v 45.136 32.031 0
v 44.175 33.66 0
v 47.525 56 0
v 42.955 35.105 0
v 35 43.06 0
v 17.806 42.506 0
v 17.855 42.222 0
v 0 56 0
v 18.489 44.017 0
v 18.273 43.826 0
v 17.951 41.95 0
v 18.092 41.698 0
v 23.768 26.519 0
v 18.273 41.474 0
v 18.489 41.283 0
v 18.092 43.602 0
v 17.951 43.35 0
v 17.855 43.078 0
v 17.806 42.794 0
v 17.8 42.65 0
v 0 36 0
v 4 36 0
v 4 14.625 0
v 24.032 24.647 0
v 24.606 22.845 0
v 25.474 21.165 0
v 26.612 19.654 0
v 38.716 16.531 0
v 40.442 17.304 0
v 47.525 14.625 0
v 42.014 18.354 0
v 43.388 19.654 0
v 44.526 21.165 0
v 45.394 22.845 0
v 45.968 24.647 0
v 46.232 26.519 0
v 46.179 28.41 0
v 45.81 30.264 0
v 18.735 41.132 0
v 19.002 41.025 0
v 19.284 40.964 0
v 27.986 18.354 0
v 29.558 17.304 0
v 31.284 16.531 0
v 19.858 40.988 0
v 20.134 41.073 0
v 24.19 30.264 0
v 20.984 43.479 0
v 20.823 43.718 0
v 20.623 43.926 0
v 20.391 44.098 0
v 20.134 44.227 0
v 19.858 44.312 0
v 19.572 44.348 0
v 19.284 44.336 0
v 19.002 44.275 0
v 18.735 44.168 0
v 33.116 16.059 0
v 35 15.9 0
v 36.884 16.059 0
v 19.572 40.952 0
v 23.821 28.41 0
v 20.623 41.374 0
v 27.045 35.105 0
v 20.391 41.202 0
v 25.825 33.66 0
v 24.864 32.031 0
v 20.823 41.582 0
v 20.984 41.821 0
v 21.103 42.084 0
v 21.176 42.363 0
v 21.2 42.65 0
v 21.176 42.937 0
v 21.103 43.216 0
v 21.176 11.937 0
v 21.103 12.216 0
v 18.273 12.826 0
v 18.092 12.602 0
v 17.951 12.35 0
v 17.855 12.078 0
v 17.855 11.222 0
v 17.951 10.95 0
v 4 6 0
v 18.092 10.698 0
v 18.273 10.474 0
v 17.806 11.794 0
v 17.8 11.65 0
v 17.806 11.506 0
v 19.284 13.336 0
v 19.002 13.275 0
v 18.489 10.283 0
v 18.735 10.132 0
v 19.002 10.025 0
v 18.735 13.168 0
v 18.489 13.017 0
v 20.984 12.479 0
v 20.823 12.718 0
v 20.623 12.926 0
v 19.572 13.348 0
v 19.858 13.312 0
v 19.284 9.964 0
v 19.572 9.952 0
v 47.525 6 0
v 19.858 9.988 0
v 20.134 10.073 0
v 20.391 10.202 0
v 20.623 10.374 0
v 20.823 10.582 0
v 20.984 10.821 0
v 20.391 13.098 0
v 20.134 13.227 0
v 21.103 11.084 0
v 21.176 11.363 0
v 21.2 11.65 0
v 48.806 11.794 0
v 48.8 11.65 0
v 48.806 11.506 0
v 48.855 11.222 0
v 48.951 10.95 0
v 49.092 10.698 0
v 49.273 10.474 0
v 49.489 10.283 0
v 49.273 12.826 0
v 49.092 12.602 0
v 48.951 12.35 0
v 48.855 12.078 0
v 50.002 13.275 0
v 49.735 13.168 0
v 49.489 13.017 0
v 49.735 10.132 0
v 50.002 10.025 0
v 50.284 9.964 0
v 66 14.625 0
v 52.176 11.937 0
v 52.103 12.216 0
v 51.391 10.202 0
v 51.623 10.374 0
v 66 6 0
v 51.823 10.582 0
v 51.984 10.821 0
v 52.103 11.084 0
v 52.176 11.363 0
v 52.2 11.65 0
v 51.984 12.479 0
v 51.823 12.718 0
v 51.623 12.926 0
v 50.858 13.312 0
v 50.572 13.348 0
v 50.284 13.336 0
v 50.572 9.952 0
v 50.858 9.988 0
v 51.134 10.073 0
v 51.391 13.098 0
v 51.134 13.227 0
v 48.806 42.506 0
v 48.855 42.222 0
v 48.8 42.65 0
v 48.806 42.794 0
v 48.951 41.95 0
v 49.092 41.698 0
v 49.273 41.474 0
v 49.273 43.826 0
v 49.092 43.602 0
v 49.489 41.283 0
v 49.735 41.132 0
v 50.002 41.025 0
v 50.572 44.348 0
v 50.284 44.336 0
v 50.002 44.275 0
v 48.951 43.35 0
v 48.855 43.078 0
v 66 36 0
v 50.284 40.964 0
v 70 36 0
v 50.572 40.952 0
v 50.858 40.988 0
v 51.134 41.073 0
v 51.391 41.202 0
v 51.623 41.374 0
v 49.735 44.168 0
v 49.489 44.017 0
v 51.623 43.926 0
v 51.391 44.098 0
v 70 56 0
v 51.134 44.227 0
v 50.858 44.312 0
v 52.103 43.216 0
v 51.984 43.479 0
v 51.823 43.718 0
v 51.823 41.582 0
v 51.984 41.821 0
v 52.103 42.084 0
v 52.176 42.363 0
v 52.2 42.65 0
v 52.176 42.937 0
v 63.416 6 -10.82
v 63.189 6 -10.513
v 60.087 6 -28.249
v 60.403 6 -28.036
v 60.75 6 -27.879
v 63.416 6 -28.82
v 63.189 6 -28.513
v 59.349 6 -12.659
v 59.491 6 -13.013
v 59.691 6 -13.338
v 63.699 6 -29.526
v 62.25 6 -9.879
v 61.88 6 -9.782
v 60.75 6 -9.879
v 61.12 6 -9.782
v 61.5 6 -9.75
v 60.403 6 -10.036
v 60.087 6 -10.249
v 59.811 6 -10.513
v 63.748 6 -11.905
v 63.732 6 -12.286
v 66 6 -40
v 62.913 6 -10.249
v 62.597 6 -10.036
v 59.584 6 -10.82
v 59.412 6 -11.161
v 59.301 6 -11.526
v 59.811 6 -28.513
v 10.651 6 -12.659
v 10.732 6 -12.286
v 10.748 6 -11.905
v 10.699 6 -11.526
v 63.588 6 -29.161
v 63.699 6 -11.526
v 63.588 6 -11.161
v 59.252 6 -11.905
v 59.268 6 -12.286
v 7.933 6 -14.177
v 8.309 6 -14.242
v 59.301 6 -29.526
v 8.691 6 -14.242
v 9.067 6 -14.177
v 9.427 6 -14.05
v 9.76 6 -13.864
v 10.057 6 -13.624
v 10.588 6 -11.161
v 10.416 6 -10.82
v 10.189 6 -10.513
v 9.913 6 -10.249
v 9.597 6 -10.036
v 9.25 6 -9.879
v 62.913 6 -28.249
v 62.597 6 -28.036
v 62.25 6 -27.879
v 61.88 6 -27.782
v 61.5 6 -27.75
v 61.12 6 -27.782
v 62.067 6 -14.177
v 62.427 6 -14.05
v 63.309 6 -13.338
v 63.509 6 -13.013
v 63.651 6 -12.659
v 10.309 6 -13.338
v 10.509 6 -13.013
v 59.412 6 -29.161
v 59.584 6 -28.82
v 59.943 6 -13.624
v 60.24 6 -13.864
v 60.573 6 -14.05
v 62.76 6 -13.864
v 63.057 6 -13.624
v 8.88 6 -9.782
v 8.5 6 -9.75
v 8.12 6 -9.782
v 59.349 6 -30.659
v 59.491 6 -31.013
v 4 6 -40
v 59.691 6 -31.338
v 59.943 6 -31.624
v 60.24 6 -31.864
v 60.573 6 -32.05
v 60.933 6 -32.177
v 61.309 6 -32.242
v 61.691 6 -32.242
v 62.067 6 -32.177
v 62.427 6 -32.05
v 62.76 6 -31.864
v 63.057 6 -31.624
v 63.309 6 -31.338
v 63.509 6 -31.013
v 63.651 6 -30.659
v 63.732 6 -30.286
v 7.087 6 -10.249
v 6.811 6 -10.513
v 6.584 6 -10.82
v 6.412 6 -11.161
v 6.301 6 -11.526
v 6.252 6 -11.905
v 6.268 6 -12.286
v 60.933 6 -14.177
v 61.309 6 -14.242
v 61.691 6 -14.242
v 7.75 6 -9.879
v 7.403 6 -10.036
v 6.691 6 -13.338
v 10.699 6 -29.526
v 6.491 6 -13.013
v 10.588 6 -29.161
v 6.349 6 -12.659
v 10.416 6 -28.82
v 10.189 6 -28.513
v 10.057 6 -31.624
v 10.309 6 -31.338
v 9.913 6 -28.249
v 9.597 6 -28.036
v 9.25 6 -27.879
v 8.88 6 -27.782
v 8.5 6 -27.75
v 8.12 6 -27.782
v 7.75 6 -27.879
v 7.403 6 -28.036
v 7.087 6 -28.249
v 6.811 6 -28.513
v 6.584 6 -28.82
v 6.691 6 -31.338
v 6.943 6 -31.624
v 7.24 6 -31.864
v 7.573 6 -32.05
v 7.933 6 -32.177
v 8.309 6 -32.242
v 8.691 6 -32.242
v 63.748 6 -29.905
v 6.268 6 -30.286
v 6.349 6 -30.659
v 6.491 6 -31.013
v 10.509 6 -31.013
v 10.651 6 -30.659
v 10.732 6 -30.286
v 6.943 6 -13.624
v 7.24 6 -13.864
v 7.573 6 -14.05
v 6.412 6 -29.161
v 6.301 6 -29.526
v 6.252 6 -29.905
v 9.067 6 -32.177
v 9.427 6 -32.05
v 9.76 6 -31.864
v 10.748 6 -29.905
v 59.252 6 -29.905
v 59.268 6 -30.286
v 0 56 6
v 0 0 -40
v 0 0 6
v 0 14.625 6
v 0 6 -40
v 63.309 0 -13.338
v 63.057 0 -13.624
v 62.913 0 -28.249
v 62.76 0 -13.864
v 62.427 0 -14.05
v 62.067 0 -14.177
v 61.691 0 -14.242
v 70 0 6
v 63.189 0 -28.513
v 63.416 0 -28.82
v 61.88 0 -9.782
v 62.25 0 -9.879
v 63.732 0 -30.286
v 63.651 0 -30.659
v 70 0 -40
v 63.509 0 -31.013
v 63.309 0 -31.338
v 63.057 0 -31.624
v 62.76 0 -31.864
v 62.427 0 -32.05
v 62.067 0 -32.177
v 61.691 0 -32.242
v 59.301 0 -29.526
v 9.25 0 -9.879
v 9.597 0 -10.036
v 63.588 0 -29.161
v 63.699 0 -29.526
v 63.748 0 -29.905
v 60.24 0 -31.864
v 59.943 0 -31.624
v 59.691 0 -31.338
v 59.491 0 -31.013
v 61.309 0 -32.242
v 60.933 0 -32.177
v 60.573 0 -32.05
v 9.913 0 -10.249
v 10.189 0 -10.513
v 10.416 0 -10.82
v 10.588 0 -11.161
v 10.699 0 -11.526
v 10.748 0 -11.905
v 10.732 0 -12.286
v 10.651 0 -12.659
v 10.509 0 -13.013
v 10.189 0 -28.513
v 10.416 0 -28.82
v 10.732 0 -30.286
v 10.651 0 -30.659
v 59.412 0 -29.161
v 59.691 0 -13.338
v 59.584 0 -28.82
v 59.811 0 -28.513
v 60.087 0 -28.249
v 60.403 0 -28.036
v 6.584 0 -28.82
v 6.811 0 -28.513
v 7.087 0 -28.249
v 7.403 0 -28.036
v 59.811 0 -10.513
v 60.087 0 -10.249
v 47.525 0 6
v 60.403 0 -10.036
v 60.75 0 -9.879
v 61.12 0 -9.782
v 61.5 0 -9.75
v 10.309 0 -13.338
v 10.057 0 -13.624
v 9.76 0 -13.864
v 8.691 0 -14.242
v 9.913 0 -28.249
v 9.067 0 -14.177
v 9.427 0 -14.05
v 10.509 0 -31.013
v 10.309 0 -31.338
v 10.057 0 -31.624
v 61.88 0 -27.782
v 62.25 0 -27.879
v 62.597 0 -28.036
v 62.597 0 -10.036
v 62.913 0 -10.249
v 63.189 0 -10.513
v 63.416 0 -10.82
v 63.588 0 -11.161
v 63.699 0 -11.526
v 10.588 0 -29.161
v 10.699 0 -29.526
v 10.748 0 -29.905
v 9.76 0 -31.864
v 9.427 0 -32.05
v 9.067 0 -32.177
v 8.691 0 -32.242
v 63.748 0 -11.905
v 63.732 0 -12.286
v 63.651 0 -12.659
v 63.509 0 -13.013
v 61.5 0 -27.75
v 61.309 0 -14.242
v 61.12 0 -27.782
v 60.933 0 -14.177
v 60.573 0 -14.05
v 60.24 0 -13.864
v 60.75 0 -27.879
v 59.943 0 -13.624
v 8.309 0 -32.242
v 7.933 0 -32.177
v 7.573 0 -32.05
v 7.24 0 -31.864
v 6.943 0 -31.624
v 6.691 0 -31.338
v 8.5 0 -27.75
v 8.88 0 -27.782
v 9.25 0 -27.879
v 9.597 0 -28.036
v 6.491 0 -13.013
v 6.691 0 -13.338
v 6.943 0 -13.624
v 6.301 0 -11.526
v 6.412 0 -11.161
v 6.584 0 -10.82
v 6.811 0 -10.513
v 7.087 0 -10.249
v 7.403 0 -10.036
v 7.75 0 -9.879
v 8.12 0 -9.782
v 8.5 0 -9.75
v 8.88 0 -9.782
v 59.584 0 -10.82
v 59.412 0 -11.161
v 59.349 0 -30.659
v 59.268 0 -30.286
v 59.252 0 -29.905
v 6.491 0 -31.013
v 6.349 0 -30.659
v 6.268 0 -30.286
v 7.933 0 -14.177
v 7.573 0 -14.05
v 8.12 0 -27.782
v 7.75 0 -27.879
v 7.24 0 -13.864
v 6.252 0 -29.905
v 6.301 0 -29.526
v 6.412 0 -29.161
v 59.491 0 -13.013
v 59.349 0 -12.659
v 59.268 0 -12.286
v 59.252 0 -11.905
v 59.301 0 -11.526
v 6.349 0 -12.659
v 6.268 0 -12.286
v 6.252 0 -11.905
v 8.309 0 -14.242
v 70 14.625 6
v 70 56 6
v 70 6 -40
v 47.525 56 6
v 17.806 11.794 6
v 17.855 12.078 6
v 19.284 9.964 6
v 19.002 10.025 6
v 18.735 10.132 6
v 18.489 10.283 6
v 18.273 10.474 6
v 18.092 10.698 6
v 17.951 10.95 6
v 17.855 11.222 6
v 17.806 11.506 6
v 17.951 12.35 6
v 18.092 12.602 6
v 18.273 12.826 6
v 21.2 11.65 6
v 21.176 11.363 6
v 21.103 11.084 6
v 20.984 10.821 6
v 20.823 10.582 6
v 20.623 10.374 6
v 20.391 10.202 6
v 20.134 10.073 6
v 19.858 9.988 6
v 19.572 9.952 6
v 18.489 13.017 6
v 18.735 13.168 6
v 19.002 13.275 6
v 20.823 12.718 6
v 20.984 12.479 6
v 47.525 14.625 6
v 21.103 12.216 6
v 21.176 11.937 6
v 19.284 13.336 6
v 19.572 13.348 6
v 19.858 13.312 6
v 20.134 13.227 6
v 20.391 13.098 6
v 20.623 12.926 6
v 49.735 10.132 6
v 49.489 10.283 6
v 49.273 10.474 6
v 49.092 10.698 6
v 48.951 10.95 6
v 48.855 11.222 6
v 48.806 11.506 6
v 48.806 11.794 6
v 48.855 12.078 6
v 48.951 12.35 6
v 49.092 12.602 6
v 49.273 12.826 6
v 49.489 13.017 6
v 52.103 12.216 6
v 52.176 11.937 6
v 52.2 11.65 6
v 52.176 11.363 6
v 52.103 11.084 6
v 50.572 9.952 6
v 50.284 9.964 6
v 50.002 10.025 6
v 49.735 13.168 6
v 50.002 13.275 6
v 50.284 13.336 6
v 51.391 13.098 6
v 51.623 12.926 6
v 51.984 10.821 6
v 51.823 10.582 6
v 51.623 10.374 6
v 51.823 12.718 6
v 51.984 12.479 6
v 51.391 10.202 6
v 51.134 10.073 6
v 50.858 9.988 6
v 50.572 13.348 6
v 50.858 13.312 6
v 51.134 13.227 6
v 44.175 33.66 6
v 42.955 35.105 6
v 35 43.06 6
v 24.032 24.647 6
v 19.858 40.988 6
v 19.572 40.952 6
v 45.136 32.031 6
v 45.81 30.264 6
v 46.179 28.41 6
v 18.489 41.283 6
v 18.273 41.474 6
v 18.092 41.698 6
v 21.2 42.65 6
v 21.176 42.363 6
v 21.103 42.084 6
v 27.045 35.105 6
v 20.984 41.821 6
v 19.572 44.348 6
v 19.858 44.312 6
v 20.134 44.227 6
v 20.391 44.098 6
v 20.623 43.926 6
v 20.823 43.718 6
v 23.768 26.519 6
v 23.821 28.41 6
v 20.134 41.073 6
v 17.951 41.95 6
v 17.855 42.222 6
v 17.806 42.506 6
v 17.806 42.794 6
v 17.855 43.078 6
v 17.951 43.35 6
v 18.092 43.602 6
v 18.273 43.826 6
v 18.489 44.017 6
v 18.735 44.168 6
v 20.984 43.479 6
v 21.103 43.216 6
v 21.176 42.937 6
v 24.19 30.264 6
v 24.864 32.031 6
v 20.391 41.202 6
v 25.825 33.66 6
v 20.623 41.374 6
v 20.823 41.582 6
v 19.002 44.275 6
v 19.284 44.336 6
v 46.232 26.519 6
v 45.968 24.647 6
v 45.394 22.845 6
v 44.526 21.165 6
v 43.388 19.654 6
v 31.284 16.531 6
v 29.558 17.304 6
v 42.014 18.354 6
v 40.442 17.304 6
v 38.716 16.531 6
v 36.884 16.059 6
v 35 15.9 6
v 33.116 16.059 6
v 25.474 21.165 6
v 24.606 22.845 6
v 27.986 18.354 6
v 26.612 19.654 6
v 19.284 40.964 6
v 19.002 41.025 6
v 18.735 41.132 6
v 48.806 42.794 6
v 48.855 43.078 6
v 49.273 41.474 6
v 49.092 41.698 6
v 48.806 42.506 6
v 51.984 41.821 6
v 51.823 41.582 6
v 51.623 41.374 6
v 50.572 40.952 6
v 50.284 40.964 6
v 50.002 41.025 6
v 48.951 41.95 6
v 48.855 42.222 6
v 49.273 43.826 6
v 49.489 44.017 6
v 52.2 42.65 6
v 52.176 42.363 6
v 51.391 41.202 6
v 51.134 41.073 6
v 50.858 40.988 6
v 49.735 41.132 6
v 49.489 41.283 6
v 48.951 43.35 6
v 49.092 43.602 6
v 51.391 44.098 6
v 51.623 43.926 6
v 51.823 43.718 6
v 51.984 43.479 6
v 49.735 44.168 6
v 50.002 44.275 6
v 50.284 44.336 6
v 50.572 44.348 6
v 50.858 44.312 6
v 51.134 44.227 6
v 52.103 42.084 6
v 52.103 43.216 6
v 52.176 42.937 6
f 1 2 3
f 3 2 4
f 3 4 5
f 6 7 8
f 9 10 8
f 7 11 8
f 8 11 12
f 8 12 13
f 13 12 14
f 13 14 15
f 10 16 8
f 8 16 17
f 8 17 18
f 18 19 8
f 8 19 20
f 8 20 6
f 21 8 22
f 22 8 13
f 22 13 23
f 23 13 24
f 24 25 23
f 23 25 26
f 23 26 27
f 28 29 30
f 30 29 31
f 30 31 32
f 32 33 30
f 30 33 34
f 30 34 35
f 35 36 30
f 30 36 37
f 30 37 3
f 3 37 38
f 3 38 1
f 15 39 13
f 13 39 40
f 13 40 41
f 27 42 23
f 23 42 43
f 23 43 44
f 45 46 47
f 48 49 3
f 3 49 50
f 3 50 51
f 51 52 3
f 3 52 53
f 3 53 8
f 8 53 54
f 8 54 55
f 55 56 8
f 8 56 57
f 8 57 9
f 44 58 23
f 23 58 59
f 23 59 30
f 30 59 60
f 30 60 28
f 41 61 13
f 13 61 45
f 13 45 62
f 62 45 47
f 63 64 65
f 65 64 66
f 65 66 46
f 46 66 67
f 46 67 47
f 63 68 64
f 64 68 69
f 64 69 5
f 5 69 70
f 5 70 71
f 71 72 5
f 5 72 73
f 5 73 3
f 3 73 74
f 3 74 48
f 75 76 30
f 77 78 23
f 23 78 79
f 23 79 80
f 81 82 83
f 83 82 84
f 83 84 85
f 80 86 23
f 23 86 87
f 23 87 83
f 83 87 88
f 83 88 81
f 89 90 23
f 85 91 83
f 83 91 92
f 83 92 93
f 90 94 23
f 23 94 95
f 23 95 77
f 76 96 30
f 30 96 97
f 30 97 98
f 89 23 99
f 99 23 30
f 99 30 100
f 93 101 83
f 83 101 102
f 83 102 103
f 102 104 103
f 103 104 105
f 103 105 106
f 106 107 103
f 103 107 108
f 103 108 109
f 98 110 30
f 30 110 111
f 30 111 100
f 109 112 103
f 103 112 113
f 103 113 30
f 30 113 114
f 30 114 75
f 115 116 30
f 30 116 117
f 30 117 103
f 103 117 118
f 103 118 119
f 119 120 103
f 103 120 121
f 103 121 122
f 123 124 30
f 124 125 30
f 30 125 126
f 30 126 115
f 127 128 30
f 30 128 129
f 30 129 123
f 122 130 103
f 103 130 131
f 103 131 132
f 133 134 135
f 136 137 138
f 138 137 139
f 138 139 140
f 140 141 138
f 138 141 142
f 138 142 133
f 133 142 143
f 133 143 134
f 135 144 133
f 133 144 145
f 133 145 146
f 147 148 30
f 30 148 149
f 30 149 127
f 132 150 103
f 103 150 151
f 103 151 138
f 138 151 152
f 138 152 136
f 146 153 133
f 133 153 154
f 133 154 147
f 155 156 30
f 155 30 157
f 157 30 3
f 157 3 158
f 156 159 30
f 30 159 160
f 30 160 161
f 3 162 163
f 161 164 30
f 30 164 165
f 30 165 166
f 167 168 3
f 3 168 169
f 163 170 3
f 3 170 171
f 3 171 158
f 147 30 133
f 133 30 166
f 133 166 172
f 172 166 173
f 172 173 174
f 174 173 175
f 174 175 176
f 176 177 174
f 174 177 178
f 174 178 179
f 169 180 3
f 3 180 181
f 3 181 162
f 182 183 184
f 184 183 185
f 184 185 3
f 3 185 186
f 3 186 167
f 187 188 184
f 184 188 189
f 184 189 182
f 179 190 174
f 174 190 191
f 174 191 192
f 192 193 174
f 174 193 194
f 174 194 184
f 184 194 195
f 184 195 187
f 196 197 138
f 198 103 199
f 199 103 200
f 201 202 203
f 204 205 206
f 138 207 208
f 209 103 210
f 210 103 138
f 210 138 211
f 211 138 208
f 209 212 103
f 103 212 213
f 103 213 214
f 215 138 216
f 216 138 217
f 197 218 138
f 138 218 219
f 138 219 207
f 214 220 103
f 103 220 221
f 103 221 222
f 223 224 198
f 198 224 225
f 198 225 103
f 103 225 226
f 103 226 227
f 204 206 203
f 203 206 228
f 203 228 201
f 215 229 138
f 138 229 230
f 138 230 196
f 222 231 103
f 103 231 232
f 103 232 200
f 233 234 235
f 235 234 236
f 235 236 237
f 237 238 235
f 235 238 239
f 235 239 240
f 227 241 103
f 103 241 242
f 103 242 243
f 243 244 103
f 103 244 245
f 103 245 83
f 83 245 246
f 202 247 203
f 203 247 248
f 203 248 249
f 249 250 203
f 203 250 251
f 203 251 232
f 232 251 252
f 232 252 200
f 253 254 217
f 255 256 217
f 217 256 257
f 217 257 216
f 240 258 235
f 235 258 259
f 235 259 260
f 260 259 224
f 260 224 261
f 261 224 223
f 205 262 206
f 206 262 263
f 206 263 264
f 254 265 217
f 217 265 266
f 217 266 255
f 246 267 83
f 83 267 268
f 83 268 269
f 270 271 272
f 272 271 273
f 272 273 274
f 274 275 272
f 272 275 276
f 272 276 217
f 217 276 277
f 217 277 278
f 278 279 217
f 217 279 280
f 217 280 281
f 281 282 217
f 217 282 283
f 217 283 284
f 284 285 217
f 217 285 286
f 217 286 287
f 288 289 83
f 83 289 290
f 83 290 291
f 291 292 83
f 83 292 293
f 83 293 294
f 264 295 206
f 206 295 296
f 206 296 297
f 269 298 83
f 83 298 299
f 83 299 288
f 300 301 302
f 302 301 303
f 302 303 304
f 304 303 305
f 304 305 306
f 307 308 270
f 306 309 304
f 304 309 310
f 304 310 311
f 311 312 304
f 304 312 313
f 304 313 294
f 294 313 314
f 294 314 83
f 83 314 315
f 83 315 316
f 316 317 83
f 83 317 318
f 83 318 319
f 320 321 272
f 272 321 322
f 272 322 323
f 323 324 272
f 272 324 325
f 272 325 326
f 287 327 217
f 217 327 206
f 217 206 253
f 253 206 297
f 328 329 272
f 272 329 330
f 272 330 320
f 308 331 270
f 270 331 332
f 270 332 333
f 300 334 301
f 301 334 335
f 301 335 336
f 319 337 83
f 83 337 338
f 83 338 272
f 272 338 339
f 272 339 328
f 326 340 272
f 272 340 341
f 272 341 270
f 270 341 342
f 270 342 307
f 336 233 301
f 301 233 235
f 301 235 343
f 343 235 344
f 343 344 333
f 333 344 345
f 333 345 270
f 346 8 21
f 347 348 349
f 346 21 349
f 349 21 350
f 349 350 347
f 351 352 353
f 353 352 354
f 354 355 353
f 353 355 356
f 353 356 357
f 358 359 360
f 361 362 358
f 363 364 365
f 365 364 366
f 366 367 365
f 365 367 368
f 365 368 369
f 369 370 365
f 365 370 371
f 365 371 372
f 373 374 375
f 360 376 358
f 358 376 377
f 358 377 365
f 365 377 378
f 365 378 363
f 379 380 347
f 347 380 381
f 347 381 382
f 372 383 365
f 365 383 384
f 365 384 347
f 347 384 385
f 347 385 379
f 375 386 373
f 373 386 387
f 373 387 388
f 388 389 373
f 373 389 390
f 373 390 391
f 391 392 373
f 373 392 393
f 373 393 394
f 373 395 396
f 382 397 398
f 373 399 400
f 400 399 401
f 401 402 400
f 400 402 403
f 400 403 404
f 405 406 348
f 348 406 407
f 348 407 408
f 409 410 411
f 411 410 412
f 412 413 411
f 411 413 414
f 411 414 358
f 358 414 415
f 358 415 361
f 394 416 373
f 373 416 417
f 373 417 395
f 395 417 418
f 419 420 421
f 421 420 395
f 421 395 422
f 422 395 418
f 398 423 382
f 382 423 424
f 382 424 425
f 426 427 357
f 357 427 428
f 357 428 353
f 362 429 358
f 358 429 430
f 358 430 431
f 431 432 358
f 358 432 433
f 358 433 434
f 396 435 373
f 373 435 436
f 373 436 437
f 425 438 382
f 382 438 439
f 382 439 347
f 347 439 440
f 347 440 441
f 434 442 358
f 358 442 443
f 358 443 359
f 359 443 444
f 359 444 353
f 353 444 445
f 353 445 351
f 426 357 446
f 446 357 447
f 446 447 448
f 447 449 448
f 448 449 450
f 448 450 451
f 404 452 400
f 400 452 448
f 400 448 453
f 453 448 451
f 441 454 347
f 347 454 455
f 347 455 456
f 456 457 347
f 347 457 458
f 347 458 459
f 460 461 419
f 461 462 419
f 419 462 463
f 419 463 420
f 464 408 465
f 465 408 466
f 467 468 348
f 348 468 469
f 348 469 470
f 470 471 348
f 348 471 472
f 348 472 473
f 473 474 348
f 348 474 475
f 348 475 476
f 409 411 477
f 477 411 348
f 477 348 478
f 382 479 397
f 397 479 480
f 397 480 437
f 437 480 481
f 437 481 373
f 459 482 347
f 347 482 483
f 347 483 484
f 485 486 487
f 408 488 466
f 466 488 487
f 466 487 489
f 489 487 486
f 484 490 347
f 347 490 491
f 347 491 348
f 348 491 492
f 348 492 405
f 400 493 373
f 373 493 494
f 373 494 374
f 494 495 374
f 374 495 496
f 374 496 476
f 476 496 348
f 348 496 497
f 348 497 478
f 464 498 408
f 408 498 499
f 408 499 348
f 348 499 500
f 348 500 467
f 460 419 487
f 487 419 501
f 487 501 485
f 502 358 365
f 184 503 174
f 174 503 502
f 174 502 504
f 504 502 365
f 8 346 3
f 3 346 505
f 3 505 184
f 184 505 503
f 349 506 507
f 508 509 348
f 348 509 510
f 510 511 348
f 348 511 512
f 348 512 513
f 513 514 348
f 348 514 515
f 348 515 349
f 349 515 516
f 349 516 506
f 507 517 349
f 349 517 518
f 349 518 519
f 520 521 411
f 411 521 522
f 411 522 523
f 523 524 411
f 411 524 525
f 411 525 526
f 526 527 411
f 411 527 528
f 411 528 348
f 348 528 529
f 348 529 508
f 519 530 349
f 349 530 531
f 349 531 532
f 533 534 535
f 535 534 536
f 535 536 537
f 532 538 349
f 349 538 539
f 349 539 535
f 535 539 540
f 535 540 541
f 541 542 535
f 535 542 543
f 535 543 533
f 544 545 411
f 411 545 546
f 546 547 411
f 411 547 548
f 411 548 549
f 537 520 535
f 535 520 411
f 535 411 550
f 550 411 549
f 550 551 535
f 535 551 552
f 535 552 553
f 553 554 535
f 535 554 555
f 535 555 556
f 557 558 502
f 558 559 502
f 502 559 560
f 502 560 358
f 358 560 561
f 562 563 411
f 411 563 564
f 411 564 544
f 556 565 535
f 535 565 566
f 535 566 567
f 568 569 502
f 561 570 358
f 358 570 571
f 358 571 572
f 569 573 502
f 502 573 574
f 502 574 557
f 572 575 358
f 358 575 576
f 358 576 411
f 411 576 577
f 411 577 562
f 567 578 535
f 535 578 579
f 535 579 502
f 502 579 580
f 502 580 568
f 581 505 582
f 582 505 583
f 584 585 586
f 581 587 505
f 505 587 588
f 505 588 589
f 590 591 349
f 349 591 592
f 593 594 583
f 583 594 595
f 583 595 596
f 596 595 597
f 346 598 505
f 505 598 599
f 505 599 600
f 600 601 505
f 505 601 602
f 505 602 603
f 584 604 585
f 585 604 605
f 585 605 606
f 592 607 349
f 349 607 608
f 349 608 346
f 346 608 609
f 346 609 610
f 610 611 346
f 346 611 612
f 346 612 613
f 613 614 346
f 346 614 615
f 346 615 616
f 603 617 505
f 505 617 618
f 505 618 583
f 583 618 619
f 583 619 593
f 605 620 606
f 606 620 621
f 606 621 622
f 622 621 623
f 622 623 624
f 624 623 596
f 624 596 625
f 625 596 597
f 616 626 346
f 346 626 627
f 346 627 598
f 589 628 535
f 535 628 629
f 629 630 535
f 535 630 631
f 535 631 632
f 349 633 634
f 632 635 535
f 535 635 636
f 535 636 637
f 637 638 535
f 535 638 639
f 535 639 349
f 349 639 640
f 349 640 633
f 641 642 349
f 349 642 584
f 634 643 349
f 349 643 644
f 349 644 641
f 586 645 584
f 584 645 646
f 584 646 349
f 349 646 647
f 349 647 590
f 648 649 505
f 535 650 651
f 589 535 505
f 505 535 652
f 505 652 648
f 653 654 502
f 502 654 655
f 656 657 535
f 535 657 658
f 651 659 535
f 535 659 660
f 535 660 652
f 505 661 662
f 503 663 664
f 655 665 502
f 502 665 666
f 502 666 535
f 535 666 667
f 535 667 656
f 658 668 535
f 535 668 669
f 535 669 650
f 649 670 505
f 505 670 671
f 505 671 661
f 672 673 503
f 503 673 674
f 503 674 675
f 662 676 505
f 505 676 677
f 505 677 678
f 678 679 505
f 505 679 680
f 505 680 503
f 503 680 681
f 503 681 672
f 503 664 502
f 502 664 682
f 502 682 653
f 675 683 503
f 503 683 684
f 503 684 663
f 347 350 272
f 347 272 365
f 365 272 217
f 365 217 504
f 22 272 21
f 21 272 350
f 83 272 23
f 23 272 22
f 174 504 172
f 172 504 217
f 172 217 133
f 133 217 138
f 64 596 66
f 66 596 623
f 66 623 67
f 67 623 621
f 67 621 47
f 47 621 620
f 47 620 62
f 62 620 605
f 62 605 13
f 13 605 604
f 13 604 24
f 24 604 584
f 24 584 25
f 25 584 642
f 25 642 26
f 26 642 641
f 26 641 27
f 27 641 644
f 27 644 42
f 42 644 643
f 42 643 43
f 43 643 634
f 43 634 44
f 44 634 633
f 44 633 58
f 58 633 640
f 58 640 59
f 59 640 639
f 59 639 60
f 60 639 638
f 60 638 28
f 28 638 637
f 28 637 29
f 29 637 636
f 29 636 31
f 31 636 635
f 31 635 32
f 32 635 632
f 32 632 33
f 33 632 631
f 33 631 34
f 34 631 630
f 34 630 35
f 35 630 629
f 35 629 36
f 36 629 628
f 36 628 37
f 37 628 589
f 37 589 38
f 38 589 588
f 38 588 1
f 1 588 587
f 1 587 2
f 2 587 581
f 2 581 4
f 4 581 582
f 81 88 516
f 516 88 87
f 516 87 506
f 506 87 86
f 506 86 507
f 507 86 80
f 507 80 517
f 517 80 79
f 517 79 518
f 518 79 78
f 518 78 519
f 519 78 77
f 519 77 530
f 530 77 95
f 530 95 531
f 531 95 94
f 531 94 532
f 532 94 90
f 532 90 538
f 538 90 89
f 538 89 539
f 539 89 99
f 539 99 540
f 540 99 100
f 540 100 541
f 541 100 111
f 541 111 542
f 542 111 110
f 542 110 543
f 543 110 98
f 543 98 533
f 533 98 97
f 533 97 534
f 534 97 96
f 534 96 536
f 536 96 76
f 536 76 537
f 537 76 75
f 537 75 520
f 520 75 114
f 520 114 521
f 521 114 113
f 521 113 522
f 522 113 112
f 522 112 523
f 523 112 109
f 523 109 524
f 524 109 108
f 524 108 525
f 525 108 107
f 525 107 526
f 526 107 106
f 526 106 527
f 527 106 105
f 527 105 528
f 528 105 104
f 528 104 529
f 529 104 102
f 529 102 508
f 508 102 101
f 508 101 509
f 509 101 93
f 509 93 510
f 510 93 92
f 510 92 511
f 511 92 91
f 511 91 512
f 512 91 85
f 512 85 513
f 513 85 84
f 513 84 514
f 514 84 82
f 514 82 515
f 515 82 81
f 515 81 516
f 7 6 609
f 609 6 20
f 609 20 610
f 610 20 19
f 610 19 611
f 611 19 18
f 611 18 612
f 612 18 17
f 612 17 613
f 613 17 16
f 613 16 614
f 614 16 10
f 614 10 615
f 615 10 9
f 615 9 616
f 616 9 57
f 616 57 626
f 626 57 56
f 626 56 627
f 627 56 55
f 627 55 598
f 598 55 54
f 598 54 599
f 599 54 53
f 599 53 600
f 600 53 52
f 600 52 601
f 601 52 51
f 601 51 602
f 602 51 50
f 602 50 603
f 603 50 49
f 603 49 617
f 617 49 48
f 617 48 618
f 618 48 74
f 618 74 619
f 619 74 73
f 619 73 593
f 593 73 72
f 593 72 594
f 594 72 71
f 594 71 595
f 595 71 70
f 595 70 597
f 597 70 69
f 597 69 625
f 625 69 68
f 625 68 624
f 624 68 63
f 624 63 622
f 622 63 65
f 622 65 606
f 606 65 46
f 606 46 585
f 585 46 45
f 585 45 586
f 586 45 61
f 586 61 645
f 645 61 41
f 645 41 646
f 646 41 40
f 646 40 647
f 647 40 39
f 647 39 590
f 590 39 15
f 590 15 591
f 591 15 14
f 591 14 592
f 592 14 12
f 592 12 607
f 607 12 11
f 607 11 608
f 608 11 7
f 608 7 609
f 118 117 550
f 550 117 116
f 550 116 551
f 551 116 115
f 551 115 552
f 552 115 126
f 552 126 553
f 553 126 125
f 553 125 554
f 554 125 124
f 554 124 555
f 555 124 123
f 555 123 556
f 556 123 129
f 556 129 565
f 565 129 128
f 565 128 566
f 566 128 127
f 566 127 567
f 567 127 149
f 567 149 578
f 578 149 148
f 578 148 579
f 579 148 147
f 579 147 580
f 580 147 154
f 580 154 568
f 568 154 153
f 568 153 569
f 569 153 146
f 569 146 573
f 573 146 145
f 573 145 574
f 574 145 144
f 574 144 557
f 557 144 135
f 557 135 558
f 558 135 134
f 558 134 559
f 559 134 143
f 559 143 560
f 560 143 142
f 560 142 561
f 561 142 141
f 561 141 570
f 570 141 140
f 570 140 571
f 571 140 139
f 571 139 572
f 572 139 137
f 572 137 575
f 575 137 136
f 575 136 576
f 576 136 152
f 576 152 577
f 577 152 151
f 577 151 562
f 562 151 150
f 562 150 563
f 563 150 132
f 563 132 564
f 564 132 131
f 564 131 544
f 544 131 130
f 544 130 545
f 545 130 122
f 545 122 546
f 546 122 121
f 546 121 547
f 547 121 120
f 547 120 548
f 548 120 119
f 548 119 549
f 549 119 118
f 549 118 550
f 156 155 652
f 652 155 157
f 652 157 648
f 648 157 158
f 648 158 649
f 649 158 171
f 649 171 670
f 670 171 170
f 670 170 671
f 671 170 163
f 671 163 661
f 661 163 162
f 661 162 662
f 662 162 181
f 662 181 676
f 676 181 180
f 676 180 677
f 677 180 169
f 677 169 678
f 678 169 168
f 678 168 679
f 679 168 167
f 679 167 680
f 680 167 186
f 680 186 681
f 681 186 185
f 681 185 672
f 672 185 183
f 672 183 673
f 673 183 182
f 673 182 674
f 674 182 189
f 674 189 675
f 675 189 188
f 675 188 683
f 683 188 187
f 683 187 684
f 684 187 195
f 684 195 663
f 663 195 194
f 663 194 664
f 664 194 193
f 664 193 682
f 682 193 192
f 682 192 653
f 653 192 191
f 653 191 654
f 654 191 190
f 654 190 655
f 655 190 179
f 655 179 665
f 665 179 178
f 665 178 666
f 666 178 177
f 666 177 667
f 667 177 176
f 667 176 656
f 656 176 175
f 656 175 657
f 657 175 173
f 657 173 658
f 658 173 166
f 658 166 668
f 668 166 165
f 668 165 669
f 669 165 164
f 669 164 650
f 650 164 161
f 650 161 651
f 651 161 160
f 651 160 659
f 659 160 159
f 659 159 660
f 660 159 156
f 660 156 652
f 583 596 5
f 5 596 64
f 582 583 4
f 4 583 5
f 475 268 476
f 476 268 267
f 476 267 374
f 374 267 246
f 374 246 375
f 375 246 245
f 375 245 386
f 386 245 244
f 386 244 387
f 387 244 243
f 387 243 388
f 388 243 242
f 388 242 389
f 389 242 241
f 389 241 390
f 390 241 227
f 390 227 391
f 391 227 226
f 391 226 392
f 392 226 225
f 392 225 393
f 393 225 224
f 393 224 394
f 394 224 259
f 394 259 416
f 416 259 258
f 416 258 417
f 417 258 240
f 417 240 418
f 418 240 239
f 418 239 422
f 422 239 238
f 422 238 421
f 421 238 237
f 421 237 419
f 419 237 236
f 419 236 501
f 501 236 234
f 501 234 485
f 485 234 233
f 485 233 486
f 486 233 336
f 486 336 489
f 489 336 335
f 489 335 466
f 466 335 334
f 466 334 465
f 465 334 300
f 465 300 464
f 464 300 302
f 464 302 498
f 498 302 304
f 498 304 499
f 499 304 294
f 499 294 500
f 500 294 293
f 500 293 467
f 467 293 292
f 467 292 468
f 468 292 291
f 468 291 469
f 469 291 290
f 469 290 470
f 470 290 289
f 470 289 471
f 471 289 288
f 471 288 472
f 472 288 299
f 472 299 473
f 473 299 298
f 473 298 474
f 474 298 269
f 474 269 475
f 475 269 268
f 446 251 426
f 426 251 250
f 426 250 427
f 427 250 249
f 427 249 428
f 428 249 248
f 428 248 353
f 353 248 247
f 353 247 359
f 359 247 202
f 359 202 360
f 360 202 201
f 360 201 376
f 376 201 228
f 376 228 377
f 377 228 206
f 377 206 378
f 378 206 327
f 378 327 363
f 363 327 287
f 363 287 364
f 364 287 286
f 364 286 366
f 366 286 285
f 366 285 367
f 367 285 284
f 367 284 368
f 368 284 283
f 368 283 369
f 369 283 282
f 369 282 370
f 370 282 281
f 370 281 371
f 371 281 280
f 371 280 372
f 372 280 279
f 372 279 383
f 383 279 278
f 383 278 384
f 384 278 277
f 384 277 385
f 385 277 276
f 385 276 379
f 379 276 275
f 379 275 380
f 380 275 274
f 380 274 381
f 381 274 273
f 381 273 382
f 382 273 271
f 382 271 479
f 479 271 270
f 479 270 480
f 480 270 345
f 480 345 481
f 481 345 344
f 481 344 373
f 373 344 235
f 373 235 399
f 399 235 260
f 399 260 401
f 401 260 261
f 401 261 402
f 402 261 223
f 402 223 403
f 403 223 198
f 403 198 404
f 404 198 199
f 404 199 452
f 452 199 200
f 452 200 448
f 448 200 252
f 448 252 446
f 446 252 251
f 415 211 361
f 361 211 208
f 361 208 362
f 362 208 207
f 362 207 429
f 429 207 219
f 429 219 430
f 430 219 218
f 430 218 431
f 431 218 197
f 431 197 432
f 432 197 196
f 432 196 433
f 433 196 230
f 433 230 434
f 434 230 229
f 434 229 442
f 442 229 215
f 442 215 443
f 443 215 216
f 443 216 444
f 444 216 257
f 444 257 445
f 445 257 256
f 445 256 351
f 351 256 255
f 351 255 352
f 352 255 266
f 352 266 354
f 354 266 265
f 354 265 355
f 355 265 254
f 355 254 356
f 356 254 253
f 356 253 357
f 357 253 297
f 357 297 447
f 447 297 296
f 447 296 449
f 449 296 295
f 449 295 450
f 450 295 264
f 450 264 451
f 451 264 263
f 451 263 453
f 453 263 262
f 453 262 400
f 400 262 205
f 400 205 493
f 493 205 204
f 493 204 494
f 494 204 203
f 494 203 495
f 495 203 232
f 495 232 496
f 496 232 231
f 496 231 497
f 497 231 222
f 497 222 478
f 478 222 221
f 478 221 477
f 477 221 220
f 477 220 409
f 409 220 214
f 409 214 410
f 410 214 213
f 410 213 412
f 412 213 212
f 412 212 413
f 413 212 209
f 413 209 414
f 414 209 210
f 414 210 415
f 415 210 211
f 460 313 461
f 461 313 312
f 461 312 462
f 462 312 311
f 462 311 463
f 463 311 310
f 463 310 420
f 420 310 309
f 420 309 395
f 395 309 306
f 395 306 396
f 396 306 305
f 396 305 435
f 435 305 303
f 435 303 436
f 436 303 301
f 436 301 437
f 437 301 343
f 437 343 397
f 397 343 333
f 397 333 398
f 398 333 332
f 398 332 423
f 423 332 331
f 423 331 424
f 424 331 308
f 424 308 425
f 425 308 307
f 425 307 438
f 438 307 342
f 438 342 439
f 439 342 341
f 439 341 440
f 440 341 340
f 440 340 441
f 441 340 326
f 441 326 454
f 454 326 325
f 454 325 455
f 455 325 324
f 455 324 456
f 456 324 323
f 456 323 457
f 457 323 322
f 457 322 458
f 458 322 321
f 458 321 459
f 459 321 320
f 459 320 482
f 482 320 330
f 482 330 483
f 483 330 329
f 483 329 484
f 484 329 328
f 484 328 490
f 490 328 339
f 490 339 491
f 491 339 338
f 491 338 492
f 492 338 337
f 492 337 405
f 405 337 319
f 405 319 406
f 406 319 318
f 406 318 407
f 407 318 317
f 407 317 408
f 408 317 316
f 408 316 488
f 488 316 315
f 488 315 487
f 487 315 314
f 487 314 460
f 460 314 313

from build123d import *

# Parameters (mm, degrees)
SKETCH_01_W                   = 70
SKETCH_01_H                   = 56
EXTRUDE_01_DEPTH              = 6
SKETCH_02_W                   = 70
SKETCH_02_H                   = 46
EXTRUDE_02_DEPTH              = 6
EXTRUDE_03_DEPTH              = 4
EXTRUDE_START                 = 66
EXTRUDE_04_DEPTH              = 4
CUT_EXTRUDE_05_4_3_DEPTH      = 99.163129534
CUT_EXTRUDE_05_4_3_DEPTH_BACK = 99.163129534
SKETCH_05_R                   = 11.25
SKETCH_05_R_2                 = 1.7
CUT_EXTRUDE_06_DEPTH          = 99.163129534
CUT_EXTRUDE_06_DEPTH_BACK     = 99.163129534
CUT_EXTRUDE_07_4_4_DEPTH      = 99.163129534
CUT_EXTRUDE_07_4_4_DEPTH_BACK = 99.163129534
SKETCH_07_R                   = 2.25


with BuildPart() as part:
    # 01_Пластина_эскиз → 01_Передняя_пластина (new body)
    with BuildSketch(Plane.XY):
        with Locations((35, 28)):
            Rectangle(SKETCH_01_W, SKETCH_01_H)
    extrude(amount=EXTRUDE_01_DEPTH)

    # 02_Полка_эскиз → 02_Полка (add)
    with BuildSketch(Plane(origin=(0, 0, 0), x_dir=(1, 0, 0), z_dir=(0, 1, 0))):
        with Locations((35, 17)):
            Rectangle(SKETCH_02_W, SKETCH_02_H)
    extrude(amount=EXTRUDE_02_DEPTH)

    # 03_Косынка_левая_эскиз → 03_Косынка_левая (add)
    with BuildSketch(Plane(origin=(0, 0, 0), x_dir=(0, 0, -1), z_dir=(1, 0, 0))):
        Polygon((40, 6), (0, 6), (0, 36), align=None)
    extrude(amount=EXTRUDE_03_DEPTH)

    # 04_Косынка_правая_эскиз → 04_Косынка_правая (add)
    with BuildSketch(Plane(origin=(0, 0, 0), x_dir=(0, 0, -1), z_dir=(1, 0, 0)).offset(EXTRUDE_START)):
        Polygon((40, 6), (0, 6), (0, 36), align=None)
    extrude(amount=EXTRUDE_04_DEPTH)

    # 05_Мотор_передний_фланец_эскиз → 05_Буртик_и_4_отверстия_М3 (cut, two sides: drawn at the far end of the back side and taken through both)
    with BuildSketch(Plane.XY.offset(-CUT_EXTRUDE_05_4_3_DEPTH_BACK)):
        with Locations((35, 27.15)):
            Circle(SKETCH_05_R)
        with Locations((19.5, 11.65)):
            Circle(SKETCH_05_R_2)
        with Locations((19.5, 42.65)):
            Circle(SKETCH_05_R_2)
        with Locations((50.5, 11.65)):
            Circle(SKETCH_05_R_2)
        with Locations((50.5, 42.65)):
            Circle(SKETCH_05_R_2)
    extrude(amount=CUT_EXTRUDE_05_4_3_DEPTH + CUT_EXTRUDE_05_4_3_DEPTH_BACK, mode=Mode.SUBTRACT)

    # 06_Свод_45град_эскиз → 06_Свод_отверстия_для_печати (cut, two sides: drawn at the far end of the back side and taken through both)
    with BuildSketch(Plane.XY.offset(-CUT_EXTRUDE_06_DEPTH_BACK)):
        Polygon((27.045048712, 35.104951288), (42.954951288, 35.104951288), (35, 43.059902577), align=None)
    extrude(amount=CUT_EXTRUDE_06_DEPTH + CUT_EXTRUDE_06_DEPTH_BACK, mode=Mode.SUBTRACT)

    # 07_Крепление_полки_эскиз → 07_4_отверстия_М4 (cut, two sides: drawn at the far end of the back side and taken through both)
    with BuildSketch(Plane(origin=(0, 0, 0), x_dir=(1, 0, 0), z_dir=(0, 1, 0)).offset(-CUT_EXTRUDE_07_4_4_DEPTH_BACK)):
        with Locations(Location((8.5, 12, 0), (0, 0, 270))):
            Circle(SKETCH_07_R)
        with Locations(Location((8.5, 30, 0), (0, 0, 270))):
            Circle(SKETCH_07_R)
        with Locations(Location((61.5, 12, 0), (0, 0, 270))):
            Circle(SKETCH_07_R)
        with Locations(Location((61.5, 30, 0), (0, 0, 270))):
            Circle(SKETCH_07_R)
    extrude(amount=CUT_EXTRUDE_07_4_4_DEPTH + CUT_EXTRUDE_07_4_4_DEPTH_BACK, mode=Mode.SUBTRACT)


solid = part.part
